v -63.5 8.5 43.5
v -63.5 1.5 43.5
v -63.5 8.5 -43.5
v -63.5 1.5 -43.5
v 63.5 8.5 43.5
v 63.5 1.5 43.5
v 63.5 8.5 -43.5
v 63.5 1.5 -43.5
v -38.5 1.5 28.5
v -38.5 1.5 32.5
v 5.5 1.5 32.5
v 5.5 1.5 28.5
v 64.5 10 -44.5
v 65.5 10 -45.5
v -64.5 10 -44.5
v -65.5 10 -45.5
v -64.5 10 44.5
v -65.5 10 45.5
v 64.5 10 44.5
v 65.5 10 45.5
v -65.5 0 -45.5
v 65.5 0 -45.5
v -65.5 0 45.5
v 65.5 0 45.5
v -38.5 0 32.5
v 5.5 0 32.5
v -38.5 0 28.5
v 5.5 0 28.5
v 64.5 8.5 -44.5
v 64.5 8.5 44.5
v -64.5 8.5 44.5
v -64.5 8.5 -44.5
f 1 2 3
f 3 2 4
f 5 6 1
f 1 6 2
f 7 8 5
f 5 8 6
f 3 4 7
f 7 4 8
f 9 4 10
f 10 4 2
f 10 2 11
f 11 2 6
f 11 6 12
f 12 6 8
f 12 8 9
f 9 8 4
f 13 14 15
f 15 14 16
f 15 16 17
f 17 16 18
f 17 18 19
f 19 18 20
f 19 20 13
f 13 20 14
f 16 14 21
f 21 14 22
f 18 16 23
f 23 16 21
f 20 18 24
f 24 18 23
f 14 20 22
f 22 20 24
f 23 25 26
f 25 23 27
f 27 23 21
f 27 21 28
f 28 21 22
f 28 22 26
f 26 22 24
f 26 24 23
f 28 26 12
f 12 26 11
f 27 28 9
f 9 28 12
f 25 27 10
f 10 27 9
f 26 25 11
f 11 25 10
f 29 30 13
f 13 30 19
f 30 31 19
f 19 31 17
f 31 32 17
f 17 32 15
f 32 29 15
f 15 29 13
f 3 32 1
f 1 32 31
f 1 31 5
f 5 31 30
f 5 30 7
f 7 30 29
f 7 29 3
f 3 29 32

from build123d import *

# Parameters (mm, degrees)
SKETCH1_W           = 127
SKETCH1_H           = 87
BOSS_EXTRUDE1_DEPTH = 1.5
SKETCH2_W           = 131
SKETCH2_H           = 91
SKETCH2_W_2         = 127
SKETCH2_H_2         = 87
BOSS_EXTRUDE2_DEPTH = 10
CUT_EXTRUDE1_REACH  = 82.377
SKETCH3_W           = 44
SKETCH3_H           = 4
SKETCH5_W           = 129
SKETCH5_H           = 89
SKETCH5_W_2         = 127
SKETCH5_H_2         = 87
CUT_EXTRUDE3_DEPTH  = 1.5


with BuildPart() as part:
    # Sketch1 → Boss-Extrude1 (new body)
    with BuildSketch(Plane(origin=(0, 0, 0), x_dir=(1, 0, 0), z_dir=(0, 1, 0))):
        Rectangle(SKETCH1_W, SKETCH1_H)
    extrude(amount=BOSS_EXTRUDE1_DEPTH)

    # Sketch2 → Boss-Extrude2 (add)
    with BuildSketch(Plane(origin=(0, 0, 0), x_dir=(1, 0, 0), z_dir=(0, 1, 0))):
        Rectangle(SKETCH2_W, SKETCH2_H)
        Rectangle(SKETCH2_W_2, SKETCH2_H_2, mode=Mode.SUBTRACT)
    extrude(amount=BOSS_EXTRUDE2_DEPTH)

    # Sketch3 → Cut-Extrude1 (cut, up to next)
    with BuildSketch(Plane.XZ, mode=Mode.PRIVATE) as cut_extrude1_sk1:
        with Locations((-16.5, 30.5)):
            Rectangle(SKETCH3_W, SKETCH3_H)
    cut_extrude1_tool1 = extrude(cut_extrude1_sk1.sketch, amount=-CUT_EXTRUDE1_REACH, mode=Mode.PRIVATE) & part.part
    add(cut_extrude1_tool1.solids().sort_by_distance((-16.5, 0, 30.5))[0], mode=Mode.SUBTRACT)

    # Sketch5 → Cut-Extrude3 (cut)
    with BuildSketch(Plane(origin=(0, 10, 0), x_dir=(1, 0, 0), z_dir=(0, 1, 0))):
        Rectangle(SKETCH5_W, SKETCH5_H)
        Rectangle(SKETCH5_W_2, SKETCH5_H_2, mode=Mode.SUBTRACT)
    extrude(amount=-CUT_EXTRUDE3_DEPTH, mode=Mode.SUBTRACT)


solid = part.part
